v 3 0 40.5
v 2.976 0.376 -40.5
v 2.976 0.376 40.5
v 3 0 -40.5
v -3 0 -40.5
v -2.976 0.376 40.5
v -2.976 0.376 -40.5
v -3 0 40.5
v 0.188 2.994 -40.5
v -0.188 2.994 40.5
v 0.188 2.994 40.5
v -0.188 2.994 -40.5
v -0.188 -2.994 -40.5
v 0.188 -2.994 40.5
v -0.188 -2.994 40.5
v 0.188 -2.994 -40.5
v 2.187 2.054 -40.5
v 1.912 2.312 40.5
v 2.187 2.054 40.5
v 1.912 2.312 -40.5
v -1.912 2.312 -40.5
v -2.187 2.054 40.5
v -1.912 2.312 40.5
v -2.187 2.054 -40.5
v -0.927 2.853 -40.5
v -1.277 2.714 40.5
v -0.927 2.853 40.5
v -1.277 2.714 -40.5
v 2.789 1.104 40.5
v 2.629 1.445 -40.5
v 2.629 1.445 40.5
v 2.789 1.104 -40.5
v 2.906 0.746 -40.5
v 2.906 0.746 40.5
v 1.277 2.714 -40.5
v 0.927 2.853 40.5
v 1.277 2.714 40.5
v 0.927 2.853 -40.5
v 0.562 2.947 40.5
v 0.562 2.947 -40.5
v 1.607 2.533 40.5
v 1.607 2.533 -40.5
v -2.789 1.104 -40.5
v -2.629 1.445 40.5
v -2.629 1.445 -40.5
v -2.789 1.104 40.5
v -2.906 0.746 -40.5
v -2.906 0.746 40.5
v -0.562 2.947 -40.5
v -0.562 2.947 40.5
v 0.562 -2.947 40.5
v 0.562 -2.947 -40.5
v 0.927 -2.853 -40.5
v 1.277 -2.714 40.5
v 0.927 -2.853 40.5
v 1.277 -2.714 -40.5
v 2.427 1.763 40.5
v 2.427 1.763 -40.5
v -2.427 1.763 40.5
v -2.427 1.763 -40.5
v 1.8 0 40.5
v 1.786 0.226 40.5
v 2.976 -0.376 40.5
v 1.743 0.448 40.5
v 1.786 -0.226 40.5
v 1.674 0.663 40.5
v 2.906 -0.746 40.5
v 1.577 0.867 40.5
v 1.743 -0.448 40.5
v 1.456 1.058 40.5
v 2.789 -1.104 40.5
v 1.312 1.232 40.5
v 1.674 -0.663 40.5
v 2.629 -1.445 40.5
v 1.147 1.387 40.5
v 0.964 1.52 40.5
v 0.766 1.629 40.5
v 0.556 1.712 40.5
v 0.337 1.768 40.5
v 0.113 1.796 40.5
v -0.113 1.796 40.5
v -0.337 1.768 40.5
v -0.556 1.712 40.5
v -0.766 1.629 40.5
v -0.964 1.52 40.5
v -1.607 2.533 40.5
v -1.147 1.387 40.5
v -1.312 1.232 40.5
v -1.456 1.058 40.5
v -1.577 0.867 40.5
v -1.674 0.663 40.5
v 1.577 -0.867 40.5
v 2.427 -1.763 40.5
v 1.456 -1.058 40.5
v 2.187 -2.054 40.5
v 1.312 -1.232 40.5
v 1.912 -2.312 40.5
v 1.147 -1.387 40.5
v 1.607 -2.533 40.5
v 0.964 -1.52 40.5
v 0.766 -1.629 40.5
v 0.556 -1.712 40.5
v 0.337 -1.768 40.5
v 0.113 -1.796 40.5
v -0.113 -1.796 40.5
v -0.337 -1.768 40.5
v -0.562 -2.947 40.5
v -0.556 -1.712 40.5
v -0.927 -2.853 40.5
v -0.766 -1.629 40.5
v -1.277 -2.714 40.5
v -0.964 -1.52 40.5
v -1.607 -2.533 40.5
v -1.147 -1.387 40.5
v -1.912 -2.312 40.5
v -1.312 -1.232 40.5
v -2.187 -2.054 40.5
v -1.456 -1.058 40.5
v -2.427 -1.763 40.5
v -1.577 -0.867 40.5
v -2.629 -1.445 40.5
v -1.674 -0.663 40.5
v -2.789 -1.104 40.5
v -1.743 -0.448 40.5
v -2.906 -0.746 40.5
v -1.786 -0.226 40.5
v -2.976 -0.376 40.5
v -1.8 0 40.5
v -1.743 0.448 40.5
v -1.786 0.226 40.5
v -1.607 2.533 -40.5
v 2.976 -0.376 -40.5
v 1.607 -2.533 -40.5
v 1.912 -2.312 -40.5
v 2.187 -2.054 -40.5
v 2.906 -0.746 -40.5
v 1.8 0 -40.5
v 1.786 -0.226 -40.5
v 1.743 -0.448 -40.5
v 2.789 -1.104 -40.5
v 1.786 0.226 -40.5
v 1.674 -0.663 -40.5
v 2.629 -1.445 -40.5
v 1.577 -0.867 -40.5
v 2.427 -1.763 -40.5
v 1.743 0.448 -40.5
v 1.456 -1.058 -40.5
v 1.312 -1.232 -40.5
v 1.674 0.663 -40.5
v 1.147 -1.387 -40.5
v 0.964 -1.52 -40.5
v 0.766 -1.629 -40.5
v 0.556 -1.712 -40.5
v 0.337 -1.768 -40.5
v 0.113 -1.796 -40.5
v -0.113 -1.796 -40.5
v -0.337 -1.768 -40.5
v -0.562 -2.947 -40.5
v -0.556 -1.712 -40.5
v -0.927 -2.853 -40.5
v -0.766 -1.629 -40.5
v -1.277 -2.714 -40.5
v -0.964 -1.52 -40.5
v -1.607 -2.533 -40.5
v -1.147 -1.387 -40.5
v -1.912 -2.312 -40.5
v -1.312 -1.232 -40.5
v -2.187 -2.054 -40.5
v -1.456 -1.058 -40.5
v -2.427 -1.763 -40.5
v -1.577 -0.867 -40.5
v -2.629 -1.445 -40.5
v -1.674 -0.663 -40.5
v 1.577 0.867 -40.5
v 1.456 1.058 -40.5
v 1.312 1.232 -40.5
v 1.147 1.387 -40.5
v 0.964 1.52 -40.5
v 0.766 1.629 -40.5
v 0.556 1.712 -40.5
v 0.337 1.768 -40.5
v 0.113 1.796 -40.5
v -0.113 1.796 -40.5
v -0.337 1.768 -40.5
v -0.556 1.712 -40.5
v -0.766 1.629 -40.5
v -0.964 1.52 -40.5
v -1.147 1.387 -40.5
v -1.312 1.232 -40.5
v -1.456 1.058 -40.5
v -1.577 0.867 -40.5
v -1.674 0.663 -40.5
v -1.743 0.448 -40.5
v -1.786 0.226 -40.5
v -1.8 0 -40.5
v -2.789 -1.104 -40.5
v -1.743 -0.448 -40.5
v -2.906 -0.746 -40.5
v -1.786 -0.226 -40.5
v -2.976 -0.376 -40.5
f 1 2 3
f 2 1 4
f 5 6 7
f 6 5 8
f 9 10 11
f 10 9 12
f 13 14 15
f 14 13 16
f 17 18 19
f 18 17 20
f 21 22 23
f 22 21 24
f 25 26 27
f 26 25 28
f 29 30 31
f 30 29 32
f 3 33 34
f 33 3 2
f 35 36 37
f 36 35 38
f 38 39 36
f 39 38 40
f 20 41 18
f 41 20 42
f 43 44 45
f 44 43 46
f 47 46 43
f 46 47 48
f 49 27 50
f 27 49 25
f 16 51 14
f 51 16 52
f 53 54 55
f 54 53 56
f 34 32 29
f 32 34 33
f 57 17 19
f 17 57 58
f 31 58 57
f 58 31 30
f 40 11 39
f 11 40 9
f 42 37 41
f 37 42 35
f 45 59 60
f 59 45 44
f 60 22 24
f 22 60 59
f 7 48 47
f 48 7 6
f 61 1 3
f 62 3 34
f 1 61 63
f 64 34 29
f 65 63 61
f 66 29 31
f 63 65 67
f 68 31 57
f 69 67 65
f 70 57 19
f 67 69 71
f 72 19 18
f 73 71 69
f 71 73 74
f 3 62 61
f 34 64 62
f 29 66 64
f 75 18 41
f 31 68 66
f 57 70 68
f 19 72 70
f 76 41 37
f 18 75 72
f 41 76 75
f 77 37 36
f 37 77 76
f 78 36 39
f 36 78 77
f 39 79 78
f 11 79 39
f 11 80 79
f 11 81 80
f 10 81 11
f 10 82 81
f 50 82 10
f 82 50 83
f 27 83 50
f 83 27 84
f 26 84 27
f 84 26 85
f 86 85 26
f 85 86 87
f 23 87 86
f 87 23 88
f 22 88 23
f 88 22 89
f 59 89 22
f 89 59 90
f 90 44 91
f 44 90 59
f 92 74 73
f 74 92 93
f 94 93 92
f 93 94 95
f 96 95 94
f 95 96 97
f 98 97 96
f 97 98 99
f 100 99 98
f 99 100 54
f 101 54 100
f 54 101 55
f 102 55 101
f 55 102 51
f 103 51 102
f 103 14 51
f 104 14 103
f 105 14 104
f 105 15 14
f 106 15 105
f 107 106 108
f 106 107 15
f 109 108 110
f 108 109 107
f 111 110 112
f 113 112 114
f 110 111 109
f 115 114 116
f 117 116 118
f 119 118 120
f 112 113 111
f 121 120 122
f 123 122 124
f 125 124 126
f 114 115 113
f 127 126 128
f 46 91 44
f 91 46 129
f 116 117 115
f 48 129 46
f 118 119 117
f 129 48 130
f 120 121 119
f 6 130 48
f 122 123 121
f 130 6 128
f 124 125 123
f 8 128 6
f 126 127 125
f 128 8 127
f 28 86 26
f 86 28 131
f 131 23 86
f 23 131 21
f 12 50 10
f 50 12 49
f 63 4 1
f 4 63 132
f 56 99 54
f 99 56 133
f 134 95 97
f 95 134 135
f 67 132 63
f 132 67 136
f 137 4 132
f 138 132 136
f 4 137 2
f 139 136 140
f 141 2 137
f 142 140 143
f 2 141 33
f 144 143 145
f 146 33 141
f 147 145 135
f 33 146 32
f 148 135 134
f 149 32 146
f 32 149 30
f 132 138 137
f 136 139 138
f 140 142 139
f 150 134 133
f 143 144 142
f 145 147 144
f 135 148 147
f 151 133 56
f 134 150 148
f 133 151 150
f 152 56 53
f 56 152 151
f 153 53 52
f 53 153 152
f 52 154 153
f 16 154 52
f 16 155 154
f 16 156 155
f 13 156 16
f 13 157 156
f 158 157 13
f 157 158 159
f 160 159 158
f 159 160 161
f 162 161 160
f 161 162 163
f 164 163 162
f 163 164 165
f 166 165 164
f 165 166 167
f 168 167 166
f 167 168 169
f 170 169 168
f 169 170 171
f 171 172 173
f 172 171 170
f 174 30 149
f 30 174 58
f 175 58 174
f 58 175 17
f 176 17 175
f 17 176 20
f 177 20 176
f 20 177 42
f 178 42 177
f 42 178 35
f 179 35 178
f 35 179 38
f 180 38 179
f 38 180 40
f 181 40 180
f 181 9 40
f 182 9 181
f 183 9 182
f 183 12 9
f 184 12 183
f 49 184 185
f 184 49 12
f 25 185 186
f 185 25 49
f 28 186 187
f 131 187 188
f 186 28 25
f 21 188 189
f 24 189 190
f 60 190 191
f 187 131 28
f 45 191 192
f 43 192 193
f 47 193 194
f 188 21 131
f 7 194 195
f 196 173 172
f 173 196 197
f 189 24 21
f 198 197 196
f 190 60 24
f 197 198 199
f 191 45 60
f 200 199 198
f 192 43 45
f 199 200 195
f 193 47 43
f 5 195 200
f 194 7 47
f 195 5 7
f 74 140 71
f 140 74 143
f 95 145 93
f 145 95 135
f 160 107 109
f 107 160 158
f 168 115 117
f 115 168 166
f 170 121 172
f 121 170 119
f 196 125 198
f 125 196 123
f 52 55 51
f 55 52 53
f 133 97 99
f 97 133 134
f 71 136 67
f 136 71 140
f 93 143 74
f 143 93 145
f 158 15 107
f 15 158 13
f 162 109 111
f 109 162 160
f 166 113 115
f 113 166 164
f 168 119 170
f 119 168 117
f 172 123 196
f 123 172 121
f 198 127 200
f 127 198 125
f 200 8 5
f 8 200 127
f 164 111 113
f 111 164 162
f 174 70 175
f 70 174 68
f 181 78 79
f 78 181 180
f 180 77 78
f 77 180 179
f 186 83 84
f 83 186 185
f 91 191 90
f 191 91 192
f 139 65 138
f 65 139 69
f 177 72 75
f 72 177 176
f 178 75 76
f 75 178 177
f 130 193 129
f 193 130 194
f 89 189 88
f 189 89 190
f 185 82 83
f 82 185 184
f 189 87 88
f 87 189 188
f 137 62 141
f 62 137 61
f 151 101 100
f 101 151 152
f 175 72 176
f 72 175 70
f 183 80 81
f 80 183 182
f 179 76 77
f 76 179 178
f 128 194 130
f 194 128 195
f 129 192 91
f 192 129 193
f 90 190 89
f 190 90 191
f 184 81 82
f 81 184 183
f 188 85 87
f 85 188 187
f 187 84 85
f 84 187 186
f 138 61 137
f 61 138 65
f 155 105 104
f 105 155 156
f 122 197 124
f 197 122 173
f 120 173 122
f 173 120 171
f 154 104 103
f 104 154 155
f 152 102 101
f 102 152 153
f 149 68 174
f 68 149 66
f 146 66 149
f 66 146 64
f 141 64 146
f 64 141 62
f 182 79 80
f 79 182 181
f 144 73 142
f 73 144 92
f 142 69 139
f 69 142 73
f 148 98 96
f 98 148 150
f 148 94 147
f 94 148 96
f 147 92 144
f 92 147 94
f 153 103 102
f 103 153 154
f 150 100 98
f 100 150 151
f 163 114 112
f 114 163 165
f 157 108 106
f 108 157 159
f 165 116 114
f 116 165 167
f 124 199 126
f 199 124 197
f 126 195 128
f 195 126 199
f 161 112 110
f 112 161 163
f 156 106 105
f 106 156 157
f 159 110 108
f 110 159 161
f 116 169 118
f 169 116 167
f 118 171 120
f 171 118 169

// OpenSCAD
$fn = 50;


difference() {
	union() {
		translate(v = [0, 0, -40.5000000000]) {
			cylinder(h = 81, r = 3.0000000000);
		}
	}
	union() {
		translate(v = [0, 0, -100.0000000000]) {
			cylinder(h = 200, r = 1.8000000000);
		}
	}
}
